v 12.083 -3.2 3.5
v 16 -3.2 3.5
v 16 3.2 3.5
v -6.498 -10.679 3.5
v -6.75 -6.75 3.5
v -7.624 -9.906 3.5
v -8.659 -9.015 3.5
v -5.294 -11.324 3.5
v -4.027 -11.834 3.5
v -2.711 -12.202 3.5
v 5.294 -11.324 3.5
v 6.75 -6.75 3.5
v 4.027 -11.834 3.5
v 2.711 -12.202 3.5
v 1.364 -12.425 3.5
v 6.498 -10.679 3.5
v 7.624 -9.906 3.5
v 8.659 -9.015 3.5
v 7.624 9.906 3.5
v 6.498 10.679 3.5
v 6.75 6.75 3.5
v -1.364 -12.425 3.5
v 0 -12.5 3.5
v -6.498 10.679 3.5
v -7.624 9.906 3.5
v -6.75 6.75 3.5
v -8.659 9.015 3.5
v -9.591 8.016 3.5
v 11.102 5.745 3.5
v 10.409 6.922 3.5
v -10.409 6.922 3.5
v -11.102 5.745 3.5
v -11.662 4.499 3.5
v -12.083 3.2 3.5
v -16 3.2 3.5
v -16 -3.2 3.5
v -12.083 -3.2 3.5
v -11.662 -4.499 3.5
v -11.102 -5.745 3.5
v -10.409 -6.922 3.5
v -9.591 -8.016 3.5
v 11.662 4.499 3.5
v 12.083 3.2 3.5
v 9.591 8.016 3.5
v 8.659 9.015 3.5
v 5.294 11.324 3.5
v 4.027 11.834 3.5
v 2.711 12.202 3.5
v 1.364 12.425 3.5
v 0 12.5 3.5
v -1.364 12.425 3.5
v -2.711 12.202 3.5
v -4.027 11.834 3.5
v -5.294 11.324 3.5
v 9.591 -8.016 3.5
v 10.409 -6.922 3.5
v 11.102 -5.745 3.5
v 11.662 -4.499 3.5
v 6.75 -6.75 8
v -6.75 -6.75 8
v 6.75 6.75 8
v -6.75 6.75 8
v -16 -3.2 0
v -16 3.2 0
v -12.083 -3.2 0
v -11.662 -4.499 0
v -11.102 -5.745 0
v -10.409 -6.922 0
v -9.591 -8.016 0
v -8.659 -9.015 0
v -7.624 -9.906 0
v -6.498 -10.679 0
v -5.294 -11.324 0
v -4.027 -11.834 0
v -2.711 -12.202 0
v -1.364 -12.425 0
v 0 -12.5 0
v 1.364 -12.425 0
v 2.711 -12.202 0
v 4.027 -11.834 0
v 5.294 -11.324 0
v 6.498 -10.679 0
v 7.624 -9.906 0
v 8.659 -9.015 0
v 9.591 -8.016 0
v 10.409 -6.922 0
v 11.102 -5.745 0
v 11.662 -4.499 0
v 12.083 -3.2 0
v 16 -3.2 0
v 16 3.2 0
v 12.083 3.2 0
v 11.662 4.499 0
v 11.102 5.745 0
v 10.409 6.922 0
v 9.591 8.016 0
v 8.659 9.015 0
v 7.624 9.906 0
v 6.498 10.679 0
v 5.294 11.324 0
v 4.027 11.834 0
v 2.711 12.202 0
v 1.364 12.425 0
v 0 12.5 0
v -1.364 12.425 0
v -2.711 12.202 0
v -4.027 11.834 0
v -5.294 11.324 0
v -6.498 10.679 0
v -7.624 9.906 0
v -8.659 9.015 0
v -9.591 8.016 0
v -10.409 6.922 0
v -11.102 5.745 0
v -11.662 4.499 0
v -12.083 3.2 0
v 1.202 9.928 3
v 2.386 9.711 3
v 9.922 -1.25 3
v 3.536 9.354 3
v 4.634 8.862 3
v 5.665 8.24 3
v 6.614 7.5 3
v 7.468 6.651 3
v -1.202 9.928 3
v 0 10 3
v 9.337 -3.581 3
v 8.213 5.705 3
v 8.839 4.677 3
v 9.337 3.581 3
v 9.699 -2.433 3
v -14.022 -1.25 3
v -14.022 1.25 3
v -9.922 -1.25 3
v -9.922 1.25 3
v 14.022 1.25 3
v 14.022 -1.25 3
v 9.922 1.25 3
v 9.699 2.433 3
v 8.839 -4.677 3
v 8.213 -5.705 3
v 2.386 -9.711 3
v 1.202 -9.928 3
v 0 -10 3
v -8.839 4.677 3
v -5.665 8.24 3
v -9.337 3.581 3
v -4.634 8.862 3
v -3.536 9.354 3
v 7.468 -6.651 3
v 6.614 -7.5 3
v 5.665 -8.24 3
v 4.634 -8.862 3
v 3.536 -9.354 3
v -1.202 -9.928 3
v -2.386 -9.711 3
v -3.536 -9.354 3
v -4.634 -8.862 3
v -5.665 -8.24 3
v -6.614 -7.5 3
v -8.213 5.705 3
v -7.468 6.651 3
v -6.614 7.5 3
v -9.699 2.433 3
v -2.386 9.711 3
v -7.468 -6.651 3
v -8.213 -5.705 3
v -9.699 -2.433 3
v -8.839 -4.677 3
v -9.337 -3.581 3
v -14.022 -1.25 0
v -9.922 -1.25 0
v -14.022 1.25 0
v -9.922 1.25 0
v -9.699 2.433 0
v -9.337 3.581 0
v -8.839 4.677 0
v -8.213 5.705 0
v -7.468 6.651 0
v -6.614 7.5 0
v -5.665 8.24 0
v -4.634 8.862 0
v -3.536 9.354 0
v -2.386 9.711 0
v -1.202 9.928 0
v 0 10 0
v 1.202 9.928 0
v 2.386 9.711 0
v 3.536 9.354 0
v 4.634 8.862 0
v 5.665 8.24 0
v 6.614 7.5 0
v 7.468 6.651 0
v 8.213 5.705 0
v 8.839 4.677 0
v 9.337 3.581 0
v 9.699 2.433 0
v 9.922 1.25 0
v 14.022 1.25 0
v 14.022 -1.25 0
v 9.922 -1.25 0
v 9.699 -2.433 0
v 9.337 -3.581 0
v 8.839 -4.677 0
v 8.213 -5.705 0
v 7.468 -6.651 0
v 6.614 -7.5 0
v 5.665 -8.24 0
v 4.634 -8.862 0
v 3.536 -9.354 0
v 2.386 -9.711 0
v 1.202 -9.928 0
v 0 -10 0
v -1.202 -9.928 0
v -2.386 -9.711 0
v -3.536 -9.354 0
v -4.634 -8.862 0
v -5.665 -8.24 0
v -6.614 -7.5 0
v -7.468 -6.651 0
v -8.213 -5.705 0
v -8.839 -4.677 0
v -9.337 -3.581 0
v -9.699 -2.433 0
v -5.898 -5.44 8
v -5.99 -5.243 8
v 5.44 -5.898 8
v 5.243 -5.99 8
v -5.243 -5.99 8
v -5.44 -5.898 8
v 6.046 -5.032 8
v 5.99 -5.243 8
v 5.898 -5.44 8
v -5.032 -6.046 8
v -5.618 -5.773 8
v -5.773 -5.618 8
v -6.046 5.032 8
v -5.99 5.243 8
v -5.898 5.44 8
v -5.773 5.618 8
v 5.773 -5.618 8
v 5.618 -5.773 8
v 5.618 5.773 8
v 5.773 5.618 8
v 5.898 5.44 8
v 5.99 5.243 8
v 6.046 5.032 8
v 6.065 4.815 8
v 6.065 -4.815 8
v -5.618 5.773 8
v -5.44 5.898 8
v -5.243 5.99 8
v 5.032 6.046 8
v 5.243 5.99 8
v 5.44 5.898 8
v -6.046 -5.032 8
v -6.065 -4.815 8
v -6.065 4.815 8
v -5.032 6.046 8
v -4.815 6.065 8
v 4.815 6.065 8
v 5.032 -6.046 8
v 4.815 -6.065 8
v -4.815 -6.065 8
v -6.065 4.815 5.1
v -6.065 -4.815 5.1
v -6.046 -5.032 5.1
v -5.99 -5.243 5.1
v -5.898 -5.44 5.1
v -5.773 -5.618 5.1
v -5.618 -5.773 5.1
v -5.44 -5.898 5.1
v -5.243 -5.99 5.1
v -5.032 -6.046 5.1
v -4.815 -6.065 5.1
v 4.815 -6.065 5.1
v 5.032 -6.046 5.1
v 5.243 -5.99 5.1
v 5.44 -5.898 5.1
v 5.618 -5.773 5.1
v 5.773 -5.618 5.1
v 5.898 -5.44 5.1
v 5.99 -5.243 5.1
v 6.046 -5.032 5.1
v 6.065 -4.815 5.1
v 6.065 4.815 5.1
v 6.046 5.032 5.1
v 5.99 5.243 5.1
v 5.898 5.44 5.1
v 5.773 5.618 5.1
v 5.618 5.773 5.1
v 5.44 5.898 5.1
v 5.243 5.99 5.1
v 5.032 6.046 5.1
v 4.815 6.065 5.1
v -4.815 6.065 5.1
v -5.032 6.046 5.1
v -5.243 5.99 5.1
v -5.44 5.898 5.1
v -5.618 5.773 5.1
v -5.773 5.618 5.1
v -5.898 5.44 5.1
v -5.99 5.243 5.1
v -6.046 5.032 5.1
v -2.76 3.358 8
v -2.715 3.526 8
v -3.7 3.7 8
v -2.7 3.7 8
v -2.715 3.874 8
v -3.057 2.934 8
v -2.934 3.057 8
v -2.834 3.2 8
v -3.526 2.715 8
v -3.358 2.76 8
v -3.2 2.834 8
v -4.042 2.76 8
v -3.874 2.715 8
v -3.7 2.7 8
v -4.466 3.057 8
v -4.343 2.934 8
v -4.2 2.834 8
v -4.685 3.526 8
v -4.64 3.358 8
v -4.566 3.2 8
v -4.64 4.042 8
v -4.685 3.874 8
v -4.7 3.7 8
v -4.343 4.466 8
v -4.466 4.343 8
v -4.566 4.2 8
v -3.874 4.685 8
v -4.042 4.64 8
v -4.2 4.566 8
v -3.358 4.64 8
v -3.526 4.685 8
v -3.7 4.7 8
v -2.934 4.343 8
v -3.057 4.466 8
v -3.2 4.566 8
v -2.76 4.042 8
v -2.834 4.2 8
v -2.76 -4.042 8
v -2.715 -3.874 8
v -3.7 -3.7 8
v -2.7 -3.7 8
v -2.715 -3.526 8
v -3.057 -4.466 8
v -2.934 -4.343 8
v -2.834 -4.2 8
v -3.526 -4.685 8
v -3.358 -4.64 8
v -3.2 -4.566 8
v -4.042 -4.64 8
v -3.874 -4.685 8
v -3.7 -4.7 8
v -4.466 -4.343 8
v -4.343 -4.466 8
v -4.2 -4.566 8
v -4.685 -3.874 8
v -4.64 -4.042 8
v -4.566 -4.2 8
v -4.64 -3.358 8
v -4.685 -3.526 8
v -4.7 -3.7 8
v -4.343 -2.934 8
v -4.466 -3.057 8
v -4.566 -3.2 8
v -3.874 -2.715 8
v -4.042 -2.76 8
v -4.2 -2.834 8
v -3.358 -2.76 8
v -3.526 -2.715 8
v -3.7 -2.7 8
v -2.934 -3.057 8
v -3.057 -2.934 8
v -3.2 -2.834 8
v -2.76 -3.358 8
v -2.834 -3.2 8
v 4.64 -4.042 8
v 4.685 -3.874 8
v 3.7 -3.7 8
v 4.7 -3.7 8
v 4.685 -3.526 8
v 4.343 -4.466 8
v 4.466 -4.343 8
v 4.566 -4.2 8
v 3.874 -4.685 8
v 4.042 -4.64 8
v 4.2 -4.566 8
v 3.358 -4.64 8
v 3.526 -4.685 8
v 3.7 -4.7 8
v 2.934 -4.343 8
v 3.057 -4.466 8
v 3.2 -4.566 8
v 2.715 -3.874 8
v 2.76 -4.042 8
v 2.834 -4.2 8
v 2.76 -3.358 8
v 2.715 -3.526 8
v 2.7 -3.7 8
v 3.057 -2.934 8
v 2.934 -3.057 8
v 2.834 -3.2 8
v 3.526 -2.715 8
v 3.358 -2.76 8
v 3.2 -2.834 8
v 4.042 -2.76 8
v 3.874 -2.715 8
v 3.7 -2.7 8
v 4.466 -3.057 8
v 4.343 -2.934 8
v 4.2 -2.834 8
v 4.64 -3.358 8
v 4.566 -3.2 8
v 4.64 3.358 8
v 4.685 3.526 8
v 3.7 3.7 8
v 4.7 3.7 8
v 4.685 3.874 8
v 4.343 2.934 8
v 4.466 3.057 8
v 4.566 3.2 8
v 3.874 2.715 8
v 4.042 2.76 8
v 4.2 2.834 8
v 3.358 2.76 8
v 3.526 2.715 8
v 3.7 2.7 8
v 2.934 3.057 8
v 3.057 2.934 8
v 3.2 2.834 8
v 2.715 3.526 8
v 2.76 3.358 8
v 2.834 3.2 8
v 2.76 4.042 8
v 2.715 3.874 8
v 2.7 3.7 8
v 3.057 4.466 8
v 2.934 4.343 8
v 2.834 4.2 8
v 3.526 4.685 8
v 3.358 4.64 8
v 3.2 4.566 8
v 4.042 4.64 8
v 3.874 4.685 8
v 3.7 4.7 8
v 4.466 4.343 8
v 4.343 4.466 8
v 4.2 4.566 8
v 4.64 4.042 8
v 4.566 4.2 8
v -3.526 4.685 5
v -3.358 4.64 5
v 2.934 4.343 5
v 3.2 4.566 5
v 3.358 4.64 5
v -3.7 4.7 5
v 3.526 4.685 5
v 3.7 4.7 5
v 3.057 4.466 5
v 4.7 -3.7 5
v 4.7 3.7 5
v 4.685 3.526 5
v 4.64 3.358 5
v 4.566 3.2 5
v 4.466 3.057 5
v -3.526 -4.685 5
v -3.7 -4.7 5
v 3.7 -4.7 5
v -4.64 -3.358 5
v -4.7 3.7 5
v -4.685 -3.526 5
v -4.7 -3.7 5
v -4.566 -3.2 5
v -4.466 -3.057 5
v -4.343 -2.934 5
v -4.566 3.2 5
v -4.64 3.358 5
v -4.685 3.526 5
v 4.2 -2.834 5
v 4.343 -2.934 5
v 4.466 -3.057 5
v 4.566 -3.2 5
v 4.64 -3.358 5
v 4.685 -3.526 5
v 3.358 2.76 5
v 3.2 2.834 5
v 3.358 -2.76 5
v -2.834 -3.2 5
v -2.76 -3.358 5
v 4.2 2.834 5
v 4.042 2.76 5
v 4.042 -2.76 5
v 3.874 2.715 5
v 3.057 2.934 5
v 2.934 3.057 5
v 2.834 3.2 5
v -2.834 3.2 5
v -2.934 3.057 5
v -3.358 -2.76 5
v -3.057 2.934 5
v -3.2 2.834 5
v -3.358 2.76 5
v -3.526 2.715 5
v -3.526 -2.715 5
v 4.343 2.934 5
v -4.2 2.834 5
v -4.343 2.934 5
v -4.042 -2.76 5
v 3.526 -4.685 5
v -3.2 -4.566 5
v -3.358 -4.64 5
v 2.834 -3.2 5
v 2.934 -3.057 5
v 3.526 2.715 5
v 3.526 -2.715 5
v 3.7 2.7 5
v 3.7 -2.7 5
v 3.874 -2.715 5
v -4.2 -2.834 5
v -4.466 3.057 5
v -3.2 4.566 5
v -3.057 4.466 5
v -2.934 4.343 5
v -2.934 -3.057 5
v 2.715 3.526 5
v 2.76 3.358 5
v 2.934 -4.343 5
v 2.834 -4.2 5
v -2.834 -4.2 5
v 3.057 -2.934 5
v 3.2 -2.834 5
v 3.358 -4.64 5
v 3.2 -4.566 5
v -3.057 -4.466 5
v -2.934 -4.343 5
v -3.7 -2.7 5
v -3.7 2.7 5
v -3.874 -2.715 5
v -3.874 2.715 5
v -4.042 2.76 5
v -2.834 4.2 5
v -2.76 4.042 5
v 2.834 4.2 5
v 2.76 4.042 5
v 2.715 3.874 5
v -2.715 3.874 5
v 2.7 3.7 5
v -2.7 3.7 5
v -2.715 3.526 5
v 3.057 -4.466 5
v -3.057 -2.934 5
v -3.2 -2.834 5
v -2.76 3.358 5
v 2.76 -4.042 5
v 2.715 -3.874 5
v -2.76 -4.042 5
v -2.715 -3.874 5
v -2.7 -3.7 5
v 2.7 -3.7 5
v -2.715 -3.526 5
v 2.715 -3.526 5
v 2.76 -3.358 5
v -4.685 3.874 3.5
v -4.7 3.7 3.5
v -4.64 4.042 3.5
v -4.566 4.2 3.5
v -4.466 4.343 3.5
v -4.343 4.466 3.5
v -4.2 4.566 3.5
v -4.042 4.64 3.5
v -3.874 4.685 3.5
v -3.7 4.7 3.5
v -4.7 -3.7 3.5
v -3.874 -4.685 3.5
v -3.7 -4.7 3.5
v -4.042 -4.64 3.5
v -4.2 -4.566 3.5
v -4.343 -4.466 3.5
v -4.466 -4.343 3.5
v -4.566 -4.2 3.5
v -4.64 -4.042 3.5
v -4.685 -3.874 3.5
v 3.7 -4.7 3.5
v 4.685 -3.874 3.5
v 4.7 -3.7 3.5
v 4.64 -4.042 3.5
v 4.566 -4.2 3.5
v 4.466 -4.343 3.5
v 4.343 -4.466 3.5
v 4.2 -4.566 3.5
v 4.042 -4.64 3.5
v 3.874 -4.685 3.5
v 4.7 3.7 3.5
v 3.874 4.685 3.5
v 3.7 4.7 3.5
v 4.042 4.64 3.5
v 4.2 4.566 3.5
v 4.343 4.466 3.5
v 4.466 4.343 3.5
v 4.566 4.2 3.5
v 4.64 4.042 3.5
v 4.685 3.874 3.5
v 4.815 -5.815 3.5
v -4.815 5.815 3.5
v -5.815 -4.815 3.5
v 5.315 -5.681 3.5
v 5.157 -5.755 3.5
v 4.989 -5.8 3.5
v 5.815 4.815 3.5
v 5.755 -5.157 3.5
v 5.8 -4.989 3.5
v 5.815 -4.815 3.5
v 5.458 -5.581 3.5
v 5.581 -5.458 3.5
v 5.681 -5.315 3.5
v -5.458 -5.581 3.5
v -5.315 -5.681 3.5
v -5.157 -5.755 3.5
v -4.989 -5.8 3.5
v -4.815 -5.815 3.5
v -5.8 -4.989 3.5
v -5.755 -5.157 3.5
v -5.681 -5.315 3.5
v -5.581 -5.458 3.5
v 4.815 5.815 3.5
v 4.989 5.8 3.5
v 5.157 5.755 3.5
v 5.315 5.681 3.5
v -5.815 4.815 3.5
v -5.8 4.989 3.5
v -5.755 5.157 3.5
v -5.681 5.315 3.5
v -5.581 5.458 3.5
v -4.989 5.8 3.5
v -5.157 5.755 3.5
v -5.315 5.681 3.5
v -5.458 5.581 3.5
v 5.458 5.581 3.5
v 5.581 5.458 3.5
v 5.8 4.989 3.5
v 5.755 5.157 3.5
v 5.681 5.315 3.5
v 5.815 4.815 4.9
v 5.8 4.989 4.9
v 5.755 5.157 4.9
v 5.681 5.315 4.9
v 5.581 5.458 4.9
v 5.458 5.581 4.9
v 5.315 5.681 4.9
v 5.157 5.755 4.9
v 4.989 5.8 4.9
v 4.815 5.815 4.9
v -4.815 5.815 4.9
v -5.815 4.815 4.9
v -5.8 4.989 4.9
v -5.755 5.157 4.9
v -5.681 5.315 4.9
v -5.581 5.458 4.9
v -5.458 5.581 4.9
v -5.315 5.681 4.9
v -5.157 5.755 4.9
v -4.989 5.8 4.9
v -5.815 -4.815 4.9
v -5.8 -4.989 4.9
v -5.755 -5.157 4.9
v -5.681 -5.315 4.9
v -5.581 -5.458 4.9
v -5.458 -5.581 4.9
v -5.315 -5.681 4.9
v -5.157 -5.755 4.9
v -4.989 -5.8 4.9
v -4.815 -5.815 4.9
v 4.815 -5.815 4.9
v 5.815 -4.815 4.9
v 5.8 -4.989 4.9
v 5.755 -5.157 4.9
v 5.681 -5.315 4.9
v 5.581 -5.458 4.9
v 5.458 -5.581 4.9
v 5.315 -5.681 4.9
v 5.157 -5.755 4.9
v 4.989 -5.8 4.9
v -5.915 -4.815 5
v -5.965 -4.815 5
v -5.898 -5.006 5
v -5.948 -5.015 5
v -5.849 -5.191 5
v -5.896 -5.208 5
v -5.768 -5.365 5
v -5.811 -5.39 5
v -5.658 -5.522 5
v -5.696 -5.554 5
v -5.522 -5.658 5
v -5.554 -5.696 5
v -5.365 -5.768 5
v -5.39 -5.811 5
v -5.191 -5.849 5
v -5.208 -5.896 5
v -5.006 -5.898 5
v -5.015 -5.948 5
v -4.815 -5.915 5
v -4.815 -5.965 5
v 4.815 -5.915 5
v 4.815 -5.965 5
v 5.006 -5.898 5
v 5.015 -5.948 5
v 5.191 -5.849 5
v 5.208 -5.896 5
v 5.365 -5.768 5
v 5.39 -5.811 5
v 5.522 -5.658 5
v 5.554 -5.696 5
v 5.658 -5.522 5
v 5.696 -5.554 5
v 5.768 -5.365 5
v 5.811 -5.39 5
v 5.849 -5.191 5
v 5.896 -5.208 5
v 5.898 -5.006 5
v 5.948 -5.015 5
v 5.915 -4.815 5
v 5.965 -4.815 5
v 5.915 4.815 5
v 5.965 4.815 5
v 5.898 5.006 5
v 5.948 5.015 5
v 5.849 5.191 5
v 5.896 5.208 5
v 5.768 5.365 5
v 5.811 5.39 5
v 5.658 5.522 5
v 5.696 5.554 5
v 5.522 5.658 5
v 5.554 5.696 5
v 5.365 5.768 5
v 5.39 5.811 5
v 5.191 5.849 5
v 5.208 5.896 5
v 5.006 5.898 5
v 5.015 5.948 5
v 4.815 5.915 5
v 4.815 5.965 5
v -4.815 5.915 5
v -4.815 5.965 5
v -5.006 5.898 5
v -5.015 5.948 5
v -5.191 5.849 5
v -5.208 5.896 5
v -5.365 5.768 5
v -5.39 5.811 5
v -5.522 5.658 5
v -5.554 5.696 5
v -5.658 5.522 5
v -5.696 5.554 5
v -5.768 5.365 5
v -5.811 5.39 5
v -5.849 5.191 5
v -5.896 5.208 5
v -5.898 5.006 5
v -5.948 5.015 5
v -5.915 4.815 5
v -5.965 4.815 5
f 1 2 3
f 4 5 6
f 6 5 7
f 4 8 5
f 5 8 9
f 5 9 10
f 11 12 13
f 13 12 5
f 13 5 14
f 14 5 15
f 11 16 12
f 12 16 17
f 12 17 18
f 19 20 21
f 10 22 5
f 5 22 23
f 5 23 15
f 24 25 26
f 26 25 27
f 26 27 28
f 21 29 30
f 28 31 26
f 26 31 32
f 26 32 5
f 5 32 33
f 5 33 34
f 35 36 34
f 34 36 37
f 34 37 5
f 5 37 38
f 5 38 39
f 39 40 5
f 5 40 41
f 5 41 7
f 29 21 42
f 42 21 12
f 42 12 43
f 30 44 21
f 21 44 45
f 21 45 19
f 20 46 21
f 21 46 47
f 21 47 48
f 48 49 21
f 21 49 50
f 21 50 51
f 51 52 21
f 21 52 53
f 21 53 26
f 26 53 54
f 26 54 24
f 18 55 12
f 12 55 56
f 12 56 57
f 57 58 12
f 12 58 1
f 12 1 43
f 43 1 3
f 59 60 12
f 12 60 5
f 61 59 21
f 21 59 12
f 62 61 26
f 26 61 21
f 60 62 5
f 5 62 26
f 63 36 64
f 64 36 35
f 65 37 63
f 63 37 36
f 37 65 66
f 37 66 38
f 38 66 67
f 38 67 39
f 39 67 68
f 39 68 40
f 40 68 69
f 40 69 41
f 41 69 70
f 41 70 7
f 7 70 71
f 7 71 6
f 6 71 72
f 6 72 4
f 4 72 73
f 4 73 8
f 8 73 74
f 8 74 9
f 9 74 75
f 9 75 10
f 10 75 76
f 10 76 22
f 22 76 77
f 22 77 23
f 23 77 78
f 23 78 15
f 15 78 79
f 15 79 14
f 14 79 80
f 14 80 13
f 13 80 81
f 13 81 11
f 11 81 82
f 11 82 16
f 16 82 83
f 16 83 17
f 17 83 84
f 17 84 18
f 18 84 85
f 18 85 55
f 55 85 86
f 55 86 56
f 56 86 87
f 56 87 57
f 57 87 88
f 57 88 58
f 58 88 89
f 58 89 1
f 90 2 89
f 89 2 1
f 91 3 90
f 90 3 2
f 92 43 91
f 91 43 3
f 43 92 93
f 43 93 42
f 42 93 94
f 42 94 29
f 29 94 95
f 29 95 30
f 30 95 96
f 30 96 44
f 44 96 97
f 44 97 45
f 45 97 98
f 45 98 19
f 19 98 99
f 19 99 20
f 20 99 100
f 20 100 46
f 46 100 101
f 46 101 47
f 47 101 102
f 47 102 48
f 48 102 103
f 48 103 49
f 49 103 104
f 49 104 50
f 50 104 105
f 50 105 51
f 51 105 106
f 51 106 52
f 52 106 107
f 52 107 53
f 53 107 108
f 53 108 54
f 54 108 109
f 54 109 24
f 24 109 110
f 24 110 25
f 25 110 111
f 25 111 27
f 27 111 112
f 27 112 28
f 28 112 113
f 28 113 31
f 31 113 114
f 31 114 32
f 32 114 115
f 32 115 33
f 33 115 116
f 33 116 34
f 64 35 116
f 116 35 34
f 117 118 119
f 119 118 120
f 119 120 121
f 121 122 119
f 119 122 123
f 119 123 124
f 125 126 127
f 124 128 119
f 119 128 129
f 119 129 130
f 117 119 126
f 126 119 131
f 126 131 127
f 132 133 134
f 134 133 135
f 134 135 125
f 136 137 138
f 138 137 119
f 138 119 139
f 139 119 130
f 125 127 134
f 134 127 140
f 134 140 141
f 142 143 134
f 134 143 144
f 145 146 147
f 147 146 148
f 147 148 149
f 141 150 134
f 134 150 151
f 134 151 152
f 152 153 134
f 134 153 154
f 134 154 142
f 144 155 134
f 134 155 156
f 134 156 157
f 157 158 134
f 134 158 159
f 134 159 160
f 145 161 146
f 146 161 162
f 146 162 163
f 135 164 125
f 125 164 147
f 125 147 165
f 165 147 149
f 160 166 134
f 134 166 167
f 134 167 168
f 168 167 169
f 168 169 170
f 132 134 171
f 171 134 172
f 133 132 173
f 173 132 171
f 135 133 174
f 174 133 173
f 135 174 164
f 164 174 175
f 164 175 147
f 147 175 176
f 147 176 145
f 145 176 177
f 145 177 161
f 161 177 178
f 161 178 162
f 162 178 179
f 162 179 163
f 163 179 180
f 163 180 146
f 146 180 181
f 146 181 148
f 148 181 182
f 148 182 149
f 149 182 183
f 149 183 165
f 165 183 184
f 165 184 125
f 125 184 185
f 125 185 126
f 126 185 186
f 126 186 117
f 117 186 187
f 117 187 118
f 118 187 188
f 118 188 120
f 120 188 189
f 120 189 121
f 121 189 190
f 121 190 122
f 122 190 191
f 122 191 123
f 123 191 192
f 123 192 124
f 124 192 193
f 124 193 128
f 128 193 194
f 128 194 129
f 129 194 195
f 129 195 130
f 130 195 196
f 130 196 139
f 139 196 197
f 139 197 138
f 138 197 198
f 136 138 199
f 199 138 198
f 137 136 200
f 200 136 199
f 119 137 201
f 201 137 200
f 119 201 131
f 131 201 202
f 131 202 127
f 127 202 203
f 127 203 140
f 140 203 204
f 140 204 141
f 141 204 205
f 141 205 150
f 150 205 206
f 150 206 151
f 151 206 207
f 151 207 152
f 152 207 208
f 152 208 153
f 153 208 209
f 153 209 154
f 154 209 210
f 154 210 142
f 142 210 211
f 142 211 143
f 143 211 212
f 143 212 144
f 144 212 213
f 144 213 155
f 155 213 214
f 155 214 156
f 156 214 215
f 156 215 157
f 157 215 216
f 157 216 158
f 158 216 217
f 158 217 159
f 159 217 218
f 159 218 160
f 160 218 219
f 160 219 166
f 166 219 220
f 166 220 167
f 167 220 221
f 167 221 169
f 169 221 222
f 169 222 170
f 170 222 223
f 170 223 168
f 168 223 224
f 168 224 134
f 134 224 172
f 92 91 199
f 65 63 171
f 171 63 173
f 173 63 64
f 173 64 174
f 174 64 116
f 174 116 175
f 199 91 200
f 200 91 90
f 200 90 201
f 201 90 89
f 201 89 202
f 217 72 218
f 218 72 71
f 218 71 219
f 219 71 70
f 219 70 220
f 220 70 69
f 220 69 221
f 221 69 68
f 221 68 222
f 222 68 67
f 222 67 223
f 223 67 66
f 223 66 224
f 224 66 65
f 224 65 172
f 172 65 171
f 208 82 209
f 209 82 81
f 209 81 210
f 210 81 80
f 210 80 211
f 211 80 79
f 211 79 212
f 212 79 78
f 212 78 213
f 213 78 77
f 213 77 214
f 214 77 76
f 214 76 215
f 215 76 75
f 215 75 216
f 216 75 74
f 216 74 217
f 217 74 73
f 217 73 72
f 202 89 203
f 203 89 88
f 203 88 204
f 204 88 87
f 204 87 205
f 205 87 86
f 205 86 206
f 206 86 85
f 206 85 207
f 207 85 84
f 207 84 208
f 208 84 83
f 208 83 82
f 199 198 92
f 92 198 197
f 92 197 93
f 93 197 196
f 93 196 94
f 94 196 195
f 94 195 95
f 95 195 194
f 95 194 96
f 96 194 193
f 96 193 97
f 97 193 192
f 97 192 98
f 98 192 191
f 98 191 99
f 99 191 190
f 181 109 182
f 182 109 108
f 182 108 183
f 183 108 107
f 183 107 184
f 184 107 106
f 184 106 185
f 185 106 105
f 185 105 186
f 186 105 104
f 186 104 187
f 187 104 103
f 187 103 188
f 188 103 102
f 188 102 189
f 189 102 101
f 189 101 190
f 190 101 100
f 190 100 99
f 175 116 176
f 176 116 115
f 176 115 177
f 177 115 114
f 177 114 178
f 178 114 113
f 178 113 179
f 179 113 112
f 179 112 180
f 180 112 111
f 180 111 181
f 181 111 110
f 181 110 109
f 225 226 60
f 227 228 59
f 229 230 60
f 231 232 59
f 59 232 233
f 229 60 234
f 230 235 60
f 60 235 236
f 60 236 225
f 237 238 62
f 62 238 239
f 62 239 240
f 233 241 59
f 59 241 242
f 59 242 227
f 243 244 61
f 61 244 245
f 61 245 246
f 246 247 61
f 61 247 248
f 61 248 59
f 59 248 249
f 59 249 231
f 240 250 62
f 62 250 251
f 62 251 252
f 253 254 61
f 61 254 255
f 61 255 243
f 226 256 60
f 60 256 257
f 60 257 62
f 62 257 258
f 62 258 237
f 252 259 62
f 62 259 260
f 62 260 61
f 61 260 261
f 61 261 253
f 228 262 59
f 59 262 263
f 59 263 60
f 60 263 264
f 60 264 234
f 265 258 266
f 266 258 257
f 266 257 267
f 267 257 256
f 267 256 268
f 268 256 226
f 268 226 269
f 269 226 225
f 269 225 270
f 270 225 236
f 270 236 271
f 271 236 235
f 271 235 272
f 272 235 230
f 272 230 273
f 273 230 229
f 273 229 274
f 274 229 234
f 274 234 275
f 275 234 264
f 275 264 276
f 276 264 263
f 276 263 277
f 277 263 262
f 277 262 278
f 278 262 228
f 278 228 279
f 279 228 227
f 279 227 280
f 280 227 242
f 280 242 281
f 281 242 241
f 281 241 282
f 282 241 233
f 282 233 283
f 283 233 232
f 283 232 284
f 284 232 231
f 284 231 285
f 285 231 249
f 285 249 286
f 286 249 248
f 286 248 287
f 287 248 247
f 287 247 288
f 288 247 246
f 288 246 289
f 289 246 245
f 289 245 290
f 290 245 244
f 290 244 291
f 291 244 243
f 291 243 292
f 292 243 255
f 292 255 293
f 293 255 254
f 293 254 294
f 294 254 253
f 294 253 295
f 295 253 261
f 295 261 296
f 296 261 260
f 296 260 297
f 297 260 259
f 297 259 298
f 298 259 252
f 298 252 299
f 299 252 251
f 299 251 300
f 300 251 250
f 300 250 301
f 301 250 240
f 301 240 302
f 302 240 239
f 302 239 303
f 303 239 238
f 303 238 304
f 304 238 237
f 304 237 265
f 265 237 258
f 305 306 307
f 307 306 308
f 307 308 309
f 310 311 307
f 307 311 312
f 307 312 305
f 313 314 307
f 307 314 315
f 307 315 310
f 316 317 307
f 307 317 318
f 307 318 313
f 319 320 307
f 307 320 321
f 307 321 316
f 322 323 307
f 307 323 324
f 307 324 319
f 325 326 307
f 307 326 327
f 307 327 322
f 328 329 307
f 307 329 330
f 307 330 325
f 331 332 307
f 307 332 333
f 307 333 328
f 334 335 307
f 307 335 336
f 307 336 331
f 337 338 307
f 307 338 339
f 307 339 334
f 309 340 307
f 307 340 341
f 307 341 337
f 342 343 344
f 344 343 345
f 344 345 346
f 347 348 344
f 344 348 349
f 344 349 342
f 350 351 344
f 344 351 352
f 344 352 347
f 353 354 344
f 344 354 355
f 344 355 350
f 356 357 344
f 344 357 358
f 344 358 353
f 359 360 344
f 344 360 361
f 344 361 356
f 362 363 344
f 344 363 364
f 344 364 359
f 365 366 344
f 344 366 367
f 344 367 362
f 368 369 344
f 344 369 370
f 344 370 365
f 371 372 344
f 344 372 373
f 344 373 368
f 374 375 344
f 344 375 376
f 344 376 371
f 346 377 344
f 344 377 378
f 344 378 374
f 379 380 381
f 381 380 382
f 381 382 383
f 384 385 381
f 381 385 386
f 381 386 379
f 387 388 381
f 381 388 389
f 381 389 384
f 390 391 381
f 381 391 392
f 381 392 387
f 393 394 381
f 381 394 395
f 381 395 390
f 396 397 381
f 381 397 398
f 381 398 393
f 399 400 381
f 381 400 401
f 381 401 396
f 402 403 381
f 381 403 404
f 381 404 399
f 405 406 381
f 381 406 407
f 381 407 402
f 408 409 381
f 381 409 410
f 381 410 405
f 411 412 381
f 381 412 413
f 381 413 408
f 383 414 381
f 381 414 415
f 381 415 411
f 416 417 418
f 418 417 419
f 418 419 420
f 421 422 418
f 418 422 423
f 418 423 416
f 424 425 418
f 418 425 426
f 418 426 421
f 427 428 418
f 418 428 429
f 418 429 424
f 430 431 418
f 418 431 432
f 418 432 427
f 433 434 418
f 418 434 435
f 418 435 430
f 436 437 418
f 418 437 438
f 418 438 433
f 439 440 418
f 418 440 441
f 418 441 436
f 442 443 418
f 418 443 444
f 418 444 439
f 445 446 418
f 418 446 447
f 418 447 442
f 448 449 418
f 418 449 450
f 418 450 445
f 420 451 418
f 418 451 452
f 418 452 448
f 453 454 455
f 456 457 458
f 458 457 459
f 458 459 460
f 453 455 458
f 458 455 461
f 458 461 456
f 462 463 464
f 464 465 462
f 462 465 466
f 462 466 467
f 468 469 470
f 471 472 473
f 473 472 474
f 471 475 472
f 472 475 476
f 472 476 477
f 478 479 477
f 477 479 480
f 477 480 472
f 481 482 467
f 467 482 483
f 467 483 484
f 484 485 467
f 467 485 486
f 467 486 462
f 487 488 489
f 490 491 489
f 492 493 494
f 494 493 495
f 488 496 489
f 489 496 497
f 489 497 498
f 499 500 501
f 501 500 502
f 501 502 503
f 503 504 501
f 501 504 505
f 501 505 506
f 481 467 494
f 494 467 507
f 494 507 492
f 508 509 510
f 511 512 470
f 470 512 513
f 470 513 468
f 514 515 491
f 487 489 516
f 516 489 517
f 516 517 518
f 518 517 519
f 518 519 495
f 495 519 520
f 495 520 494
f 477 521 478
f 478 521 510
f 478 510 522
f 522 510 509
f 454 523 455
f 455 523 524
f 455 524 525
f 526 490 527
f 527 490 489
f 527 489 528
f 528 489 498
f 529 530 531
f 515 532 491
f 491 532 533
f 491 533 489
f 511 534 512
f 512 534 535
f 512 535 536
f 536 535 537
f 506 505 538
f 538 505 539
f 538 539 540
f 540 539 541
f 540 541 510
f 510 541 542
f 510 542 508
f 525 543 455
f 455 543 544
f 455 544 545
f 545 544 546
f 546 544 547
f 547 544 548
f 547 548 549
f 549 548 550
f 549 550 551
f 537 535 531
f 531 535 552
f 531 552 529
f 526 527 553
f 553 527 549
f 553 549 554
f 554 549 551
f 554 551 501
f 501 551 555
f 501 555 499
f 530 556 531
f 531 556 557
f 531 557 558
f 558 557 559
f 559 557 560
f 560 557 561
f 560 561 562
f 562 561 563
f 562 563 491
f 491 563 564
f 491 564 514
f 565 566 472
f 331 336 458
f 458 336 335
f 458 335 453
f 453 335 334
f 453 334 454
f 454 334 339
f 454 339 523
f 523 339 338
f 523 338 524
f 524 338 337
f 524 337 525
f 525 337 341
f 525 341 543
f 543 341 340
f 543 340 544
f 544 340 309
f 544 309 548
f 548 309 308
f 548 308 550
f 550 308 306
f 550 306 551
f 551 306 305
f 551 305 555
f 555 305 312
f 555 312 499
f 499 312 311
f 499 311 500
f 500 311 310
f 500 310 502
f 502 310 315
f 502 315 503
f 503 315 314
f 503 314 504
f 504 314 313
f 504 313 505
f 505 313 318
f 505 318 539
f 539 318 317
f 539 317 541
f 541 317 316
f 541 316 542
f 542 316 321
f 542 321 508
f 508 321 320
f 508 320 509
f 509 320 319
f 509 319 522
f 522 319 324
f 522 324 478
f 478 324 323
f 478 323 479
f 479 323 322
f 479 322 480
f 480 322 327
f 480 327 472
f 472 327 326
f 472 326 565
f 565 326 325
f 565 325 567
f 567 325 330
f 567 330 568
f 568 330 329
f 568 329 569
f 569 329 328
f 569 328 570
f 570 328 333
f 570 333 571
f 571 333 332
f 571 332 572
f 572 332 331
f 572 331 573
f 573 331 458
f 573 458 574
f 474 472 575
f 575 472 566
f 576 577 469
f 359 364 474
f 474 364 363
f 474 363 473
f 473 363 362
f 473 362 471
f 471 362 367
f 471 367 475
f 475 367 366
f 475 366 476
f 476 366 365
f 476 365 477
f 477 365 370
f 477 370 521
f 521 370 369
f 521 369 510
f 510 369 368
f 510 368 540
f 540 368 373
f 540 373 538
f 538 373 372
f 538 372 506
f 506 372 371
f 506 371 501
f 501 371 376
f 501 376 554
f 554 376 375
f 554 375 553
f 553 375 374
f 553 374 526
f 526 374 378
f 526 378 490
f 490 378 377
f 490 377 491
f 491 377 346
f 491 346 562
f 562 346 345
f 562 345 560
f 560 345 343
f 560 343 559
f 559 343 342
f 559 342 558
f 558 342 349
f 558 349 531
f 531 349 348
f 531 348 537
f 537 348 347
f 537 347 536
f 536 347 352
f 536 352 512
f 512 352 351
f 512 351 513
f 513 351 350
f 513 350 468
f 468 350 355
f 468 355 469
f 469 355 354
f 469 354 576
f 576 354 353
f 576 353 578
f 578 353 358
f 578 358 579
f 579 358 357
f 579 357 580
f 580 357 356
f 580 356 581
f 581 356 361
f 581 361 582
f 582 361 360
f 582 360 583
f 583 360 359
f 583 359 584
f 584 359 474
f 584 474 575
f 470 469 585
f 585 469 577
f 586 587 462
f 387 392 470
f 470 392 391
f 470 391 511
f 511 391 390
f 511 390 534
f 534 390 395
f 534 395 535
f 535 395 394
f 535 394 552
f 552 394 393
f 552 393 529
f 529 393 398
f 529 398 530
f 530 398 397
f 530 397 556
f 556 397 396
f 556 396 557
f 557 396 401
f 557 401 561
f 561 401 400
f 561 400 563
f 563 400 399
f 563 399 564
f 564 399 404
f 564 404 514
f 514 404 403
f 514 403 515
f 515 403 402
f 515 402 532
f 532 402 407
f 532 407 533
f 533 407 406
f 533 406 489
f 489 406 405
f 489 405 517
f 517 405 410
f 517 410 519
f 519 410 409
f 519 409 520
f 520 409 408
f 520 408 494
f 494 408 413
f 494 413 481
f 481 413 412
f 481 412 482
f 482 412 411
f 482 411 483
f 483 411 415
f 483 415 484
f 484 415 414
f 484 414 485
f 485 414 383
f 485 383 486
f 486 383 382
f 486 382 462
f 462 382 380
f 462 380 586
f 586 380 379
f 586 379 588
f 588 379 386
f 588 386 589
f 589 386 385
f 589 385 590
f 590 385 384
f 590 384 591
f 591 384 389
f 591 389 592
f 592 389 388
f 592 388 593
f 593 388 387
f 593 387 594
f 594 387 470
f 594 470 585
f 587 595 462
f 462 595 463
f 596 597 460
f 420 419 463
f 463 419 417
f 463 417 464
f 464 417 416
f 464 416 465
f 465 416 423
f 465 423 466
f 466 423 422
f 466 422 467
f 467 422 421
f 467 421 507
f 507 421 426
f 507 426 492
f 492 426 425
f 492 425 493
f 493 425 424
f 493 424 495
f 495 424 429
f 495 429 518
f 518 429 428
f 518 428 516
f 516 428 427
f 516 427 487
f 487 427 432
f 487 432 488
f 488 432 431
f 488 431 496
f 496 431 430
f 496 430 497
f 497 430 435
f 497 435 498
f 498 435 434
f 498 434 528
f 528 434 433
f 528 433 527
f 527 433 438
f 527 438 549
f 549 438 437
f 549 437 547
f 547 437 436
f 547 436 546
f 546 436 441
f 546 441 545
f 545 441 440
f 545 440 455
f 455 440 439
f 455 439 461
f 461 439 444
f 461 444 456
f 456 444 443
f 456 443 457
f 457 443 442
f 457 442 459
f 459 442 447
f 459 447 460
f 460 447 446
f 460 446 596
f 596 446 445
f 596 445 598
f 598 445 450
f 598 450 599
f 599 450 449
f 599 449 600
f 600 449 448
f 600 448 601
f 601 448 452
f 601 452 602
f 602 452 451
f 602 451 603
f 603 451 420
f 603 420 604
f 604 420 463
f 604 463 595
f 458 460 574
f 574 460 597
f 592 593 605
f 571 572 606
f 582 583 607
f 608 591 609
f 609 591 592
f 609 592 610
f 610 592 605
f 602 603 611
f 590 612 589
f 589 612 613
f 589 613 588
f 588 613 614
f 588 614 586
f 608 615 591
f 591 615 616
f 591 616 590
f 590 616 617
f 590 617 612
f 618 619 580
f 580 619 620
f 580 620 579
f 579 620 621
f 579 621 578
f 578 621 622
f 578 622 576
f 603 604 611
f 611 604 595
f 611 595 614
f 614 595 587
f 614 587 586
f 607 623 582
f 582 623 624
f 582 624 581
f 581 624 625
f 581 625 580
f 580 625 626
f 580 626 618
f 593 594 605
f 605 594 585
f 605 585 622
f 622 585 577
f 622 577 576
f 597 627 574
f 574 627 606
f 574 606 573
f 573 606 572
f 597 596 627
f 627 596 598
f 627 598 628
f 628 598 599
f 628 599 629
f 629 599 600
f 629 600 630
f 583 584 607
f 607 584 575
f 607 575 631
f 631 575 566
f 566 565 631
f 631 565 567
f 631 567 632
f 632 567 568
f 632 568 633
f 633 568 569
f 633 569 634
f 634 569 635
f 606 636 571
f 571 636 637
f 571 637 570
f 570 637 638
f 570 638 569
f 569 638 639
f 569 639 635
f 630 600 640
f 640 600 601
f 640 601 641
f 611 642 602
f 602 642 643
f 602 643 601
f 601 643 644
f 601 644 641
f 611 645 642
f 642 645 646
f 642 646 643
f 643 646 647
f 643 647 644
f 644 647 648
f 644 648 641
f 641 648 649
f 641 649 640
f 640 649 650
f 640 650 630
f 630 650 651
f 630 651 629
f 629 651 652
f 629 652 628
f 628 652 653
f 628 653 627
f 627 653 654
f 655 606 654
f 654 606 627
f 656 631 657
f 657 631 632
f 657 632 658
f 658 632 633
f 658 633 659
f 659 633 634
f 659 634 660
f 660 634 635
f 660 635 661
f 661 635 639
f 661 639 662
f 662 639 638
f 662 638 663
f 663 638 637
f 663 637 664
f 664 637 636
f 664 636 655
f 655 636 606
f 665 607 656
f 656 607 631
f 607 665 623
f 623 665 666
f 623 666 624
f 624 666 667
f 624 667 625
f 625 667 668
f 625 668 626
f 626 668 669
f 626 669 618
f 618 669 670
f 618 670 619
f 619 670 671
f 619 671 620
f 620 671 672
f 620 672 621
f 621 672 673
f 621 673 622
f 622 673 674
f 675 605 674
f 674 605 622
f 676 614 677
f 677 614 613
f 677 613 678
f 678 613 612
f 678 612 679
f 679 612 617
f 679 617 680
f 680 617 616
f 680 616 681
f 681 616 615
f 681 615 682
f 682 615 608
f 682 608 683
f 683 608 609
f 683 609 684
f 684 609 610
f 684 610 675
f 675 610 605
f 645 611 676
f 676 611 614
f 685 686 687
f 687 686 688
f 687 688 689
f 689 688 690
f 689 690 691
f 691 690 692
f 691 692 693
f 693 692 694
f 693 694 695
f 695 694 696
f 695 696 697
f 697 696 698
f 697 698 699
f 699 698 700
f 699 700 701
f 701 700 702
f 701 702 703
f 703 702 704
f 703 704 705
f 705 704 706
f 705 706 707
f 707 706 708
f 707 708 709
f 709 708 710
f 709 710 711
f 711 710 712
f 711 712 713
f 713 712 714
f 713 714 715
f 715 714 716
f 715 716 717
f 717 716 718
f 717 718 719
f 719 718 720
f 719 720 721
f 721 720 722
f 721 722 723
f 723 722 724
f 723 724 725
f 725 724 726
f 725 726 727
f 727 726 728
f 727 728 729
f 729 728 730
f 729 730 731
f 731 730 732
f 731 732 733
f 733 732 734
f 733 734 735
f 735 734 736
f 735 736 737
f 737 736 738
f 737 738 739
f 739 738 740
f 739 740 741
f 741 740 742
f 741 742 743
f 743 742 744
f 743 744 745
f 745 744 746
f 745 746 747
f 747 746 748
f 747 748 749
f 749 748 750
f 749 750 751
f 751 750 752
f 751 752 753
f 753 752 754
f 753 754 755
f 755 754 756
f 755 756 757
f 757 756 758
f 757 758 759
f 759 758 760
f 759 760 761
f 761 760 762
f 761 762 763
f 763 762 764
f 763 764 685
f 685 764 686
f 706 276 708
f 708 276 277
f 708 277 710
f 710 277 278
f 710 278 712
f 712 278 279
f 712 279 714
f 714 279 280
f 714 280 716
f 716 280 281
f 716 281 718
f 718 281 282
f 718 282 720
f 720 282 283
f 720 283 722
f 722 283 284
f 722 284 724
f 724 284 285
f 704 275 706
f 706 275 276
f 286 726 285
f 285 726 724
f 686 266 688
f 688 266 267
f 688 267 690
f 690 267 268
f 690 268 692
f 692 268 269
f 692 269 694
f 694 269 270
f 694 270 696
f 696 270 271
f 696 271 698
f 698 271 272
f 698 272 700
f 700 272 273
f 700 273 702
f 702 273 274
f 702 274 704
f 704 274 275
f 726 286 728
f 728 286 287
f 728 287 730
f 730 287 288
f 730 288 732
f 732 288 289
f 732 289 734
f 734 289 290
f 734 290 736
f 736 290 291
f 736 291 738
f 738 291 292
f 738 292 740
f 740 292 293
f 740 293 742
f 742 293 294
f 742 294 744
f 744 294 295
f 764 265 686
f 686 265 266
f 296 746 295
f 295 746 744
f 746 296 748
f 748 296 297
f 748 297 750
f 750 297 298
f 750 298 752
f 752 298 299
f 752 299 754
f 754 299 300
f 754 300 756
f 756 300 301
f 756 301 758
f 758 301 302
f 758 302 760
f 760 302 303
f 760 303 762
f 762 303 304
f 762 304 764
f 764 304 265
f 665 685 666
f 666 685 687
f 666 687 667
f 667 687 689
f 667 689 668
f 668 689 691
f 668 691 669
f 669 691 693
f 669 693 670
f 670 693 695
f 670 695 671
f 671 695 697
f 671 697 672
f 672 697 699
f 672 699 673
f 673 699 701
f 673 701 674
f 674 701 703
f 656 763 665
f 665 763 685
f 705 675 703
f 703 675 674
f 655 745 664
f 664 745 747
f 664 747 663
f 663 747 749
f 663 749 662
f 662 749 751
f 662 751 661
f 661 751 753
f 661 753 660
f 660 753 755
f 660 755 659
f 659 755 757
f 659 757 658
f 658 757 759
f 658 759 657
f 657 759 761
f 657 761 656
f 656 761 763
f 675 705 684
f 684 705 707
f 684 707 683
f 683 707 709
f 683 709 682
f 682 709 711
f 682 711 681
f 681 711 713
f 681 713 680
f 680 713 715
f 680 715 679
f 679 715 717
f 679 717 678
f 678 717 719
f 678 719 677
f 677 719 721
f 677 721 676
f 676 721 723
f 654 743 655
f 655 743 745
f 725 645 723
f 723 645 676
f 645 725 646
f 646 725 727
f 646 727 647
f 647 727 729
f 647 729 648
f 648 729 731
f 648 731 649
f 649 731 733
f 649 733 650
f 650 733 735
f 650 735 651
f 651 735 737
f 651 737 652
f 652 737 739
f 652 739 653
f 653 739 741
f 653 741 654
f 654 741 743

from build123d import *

# Parameters (mm, degrees)
SKETCH1_R           = 17.5
BOSS_EXTRUDE1_DEPTH = 3
SKETCH2_R           = 17.5
BOSS_EXTRUDE2_DEPTH = 0.5
SKETCH3_W           = 13.5
SKETCH3_H           = 13.5
SKETCH3_W_2         = 11.63
SKETCH3_H_2         = 11.63
SKETCH3_W_3         = 9.4
SKETCH3_H_3         = 9.4
BOSS_EXTRUDE3_DEPTH = 1.5
FILLET1_R           = 1
SKETCH4_R           = 17.5
CUT_EXTRUDE1_DEPTH  = 32.5
BOSS_EXTRUDE4_START = 3
SKETCH5_R           = 1
BOSS_EXTRUDE4_DEPTH = 3
SKETCH6_W           = 13.5
SKETCH6_H           = 13.5
BOSS_EXTRUDE6_DEPTH = 3
CHAMFER1_SIZE       = 0.1


with BuildPart() as part:
    # Sketch1 → Boss-Extrude1 (new body)
    with BuildSketch(Plane.XY):
        Circle(SKETCH1_R)
        with BuildLine():
            Line((-9.921567416, -1.25), (-14.021567416, -1.25))
            Line((-14.021567416, -1.25), (-14.021567416, 1.25))
            Line((-14.021567416, 1.25), (-9.921567416, 1.25))
            ThreePointArc((-9.921567416, 1.25), (0, 10), (9.921567416, 1.25))
            Line((9.921567416, 1.25), (14.021567416, 1.25))
            Line((14.021567416, 1.25), (14.021567416, -1.25))
            Line((14.021567416, -1.25), (9.921567416, -1.25))
            ThreePointArc((9.921567416, -1.25), (0, -10), (-9.921567416, -1.25))
        make_face(mode=Mode.SUBTRACT)
    extrude(amount=BOSS_EXTRUDE1_DEPTH)

    # Sketch2 → Boss-Extrude2 (add)
    with BuildSketch(Plane.XY.offset(3)):
        Circle(SKETCH2_R)
    extrude(amount=BOSS_EXTRUDE2_DEPTH)

    # Sketch3 → Boss-Extrude3 (add)
    # profile 1 of 2: a face of its own
    with BuildSketch(Plane.XY.offset(3.5)):
        Rectangle(SKETCH3_W, SKETCH3_H)
        Rectangle(SKETCH3_W_2, SKETCH3_H_2, mode=Mode.SUBTRACT)
    # profile 2 of 2: a face of its own
    with BuildSketch(Plane.XY.offset(3.5)):
        Rectangle(SKETCH3_W_3, SKETCH3_H_3)
    extrude(amount=BOSS_EXTRUDE3_DEPTH)

    # Fillet1
    fillet1_edges = [part.edges().sort_by_distance(p)[0] for p in [
        (4.7, 4.7, 4.25),
        (-4.7, 4.7, 4.25),
        (-4.7, -4.7, 4.25),
        (4.7, -4.7, 4.25),
        (5.815, -5.815, 4.25),
        (-5.815, -5.815, 4.25),
        (-5.815, 5.815, 4.25),
        (5.815, 5.815, 4.25),
    ]]
    fillet(fillet1_edges, radius=FILLET1_R)

    # Sketch4 → Cut-Extrude1 (cut)
    with BuildSketch(Plane(origin=(0, 0, 0), x_dir=(-1, 0, 0), z_dir=(0, 0, -1))):
        Circle(SKETCH4_R)
        with BuildLine():
            Line((-16, 3.2), (-16, -3.2))
            Line((-16, -3.2), (-12.083459769, -3.2))
            ThreePointArc((-12.083459769, -3.2), (0, -12.5), (12.083459769, -3.2))
            Line((12.083459769, -3.2), (16, -3.2))
            Line((16, -3.2), (16, 3.2))
            Line((16, 3.2), (12.083459769, 3.2))
            ThreePointArc((12.083459769, 3.2), (0, 12.5), (-12.083459769, 3.2))
            Line((-12.083459769, 3.2), (-16, 3.2))
        make_face(mode=Mode.SUBTRACT)
    extrude(amount=-CUT_EXTRUDE1_DEPTH, mode=Mode.SUBTRACT)

    # Sketch5 → Boss-Extrude4 (add)
    with BuildSketch(Plane.XY.offset(5).offset(BOSS_EXTRUDE4_START)):
        with Locations(Location((-3.7, 3.7, 0), (0, 0, 180))):
            Circle(SKETCH5_R)
        with Locations((3.7, 3.7)):
            Circle(SKETCH5_R)
        with Locations((3.7, -3.7)):
            Circle(SKETCH5_R)
        with Locations((-3.7, -3.7)):
            Circle(SKETCH5_R)
    extrude(amount=-BOSS_EXTRUDE4_DEPTH)

    # Sketch6 → Boss-Extrude6 (add)
    with BuildSketch(Plane.XY.offset(8)):
        Rectangle(SKETCH6_W, SKETCH6_H)
        with BuildLine():
            Line((-6.065, 4.815), (-6.065, -4.815))
            ThreePointArc((-6.065, -4.815), (-5.698883476, -5.698883476), (-4.815, -6.065))
            Line((-4.815, -6.065), (4.815, -6.065))
            ThreePointArc((4.815, -6.065), (5.698883476, -5.698883476), (6.065, -4.815))
            Line((6.065, -4.815), (6.065, 4.815))
            ThreePointArc((6.065, 4.815), (5.698883476, 5.698883476), (4.815, 6.065))
            Line((4.815, 6.065), (-4.815, 6.065))
            ThreePointArc((-4.815, 6.065), (-5.698883476, 5.698883476), (-6.065, 4.815))
        make_face(mode=Mode.SUBTRACT)
    extrude(amount=-BOSS_EXTRUDE6_DEPTH)

    # Chamfer1
    chamfer1_edges = [part.edges().sort_by_distance(p)[0] for p in [
        (-5.522106781, -5.522106781, 5),
        (5.522106781, 5.522106781, 5),
        (-5.522106781, 5.522106781, 5),
        (5.522106781, -5.522106781, 5),
        (-6.065, 0, 5),
        (-5.698883476, -5.698883476, 5),
        (0, -6.065, 5),
        (5.698883476, -5.698883476, 5),
        (6.065, 0, 5),
        (5.698883476, 5.698883476, 5),
        (0, 6.065, 5),
        (-5.698883476, 5.698883476, 5),
        (-5.815, 0, 5),
        (0, -5.815, 5),
        (5.815, 0, 5),
        (0, 5.815, 5),
    ]]
    chamfer(chamfer1_edges, length=CHAMFER1_SIZE)


solid = part.part
